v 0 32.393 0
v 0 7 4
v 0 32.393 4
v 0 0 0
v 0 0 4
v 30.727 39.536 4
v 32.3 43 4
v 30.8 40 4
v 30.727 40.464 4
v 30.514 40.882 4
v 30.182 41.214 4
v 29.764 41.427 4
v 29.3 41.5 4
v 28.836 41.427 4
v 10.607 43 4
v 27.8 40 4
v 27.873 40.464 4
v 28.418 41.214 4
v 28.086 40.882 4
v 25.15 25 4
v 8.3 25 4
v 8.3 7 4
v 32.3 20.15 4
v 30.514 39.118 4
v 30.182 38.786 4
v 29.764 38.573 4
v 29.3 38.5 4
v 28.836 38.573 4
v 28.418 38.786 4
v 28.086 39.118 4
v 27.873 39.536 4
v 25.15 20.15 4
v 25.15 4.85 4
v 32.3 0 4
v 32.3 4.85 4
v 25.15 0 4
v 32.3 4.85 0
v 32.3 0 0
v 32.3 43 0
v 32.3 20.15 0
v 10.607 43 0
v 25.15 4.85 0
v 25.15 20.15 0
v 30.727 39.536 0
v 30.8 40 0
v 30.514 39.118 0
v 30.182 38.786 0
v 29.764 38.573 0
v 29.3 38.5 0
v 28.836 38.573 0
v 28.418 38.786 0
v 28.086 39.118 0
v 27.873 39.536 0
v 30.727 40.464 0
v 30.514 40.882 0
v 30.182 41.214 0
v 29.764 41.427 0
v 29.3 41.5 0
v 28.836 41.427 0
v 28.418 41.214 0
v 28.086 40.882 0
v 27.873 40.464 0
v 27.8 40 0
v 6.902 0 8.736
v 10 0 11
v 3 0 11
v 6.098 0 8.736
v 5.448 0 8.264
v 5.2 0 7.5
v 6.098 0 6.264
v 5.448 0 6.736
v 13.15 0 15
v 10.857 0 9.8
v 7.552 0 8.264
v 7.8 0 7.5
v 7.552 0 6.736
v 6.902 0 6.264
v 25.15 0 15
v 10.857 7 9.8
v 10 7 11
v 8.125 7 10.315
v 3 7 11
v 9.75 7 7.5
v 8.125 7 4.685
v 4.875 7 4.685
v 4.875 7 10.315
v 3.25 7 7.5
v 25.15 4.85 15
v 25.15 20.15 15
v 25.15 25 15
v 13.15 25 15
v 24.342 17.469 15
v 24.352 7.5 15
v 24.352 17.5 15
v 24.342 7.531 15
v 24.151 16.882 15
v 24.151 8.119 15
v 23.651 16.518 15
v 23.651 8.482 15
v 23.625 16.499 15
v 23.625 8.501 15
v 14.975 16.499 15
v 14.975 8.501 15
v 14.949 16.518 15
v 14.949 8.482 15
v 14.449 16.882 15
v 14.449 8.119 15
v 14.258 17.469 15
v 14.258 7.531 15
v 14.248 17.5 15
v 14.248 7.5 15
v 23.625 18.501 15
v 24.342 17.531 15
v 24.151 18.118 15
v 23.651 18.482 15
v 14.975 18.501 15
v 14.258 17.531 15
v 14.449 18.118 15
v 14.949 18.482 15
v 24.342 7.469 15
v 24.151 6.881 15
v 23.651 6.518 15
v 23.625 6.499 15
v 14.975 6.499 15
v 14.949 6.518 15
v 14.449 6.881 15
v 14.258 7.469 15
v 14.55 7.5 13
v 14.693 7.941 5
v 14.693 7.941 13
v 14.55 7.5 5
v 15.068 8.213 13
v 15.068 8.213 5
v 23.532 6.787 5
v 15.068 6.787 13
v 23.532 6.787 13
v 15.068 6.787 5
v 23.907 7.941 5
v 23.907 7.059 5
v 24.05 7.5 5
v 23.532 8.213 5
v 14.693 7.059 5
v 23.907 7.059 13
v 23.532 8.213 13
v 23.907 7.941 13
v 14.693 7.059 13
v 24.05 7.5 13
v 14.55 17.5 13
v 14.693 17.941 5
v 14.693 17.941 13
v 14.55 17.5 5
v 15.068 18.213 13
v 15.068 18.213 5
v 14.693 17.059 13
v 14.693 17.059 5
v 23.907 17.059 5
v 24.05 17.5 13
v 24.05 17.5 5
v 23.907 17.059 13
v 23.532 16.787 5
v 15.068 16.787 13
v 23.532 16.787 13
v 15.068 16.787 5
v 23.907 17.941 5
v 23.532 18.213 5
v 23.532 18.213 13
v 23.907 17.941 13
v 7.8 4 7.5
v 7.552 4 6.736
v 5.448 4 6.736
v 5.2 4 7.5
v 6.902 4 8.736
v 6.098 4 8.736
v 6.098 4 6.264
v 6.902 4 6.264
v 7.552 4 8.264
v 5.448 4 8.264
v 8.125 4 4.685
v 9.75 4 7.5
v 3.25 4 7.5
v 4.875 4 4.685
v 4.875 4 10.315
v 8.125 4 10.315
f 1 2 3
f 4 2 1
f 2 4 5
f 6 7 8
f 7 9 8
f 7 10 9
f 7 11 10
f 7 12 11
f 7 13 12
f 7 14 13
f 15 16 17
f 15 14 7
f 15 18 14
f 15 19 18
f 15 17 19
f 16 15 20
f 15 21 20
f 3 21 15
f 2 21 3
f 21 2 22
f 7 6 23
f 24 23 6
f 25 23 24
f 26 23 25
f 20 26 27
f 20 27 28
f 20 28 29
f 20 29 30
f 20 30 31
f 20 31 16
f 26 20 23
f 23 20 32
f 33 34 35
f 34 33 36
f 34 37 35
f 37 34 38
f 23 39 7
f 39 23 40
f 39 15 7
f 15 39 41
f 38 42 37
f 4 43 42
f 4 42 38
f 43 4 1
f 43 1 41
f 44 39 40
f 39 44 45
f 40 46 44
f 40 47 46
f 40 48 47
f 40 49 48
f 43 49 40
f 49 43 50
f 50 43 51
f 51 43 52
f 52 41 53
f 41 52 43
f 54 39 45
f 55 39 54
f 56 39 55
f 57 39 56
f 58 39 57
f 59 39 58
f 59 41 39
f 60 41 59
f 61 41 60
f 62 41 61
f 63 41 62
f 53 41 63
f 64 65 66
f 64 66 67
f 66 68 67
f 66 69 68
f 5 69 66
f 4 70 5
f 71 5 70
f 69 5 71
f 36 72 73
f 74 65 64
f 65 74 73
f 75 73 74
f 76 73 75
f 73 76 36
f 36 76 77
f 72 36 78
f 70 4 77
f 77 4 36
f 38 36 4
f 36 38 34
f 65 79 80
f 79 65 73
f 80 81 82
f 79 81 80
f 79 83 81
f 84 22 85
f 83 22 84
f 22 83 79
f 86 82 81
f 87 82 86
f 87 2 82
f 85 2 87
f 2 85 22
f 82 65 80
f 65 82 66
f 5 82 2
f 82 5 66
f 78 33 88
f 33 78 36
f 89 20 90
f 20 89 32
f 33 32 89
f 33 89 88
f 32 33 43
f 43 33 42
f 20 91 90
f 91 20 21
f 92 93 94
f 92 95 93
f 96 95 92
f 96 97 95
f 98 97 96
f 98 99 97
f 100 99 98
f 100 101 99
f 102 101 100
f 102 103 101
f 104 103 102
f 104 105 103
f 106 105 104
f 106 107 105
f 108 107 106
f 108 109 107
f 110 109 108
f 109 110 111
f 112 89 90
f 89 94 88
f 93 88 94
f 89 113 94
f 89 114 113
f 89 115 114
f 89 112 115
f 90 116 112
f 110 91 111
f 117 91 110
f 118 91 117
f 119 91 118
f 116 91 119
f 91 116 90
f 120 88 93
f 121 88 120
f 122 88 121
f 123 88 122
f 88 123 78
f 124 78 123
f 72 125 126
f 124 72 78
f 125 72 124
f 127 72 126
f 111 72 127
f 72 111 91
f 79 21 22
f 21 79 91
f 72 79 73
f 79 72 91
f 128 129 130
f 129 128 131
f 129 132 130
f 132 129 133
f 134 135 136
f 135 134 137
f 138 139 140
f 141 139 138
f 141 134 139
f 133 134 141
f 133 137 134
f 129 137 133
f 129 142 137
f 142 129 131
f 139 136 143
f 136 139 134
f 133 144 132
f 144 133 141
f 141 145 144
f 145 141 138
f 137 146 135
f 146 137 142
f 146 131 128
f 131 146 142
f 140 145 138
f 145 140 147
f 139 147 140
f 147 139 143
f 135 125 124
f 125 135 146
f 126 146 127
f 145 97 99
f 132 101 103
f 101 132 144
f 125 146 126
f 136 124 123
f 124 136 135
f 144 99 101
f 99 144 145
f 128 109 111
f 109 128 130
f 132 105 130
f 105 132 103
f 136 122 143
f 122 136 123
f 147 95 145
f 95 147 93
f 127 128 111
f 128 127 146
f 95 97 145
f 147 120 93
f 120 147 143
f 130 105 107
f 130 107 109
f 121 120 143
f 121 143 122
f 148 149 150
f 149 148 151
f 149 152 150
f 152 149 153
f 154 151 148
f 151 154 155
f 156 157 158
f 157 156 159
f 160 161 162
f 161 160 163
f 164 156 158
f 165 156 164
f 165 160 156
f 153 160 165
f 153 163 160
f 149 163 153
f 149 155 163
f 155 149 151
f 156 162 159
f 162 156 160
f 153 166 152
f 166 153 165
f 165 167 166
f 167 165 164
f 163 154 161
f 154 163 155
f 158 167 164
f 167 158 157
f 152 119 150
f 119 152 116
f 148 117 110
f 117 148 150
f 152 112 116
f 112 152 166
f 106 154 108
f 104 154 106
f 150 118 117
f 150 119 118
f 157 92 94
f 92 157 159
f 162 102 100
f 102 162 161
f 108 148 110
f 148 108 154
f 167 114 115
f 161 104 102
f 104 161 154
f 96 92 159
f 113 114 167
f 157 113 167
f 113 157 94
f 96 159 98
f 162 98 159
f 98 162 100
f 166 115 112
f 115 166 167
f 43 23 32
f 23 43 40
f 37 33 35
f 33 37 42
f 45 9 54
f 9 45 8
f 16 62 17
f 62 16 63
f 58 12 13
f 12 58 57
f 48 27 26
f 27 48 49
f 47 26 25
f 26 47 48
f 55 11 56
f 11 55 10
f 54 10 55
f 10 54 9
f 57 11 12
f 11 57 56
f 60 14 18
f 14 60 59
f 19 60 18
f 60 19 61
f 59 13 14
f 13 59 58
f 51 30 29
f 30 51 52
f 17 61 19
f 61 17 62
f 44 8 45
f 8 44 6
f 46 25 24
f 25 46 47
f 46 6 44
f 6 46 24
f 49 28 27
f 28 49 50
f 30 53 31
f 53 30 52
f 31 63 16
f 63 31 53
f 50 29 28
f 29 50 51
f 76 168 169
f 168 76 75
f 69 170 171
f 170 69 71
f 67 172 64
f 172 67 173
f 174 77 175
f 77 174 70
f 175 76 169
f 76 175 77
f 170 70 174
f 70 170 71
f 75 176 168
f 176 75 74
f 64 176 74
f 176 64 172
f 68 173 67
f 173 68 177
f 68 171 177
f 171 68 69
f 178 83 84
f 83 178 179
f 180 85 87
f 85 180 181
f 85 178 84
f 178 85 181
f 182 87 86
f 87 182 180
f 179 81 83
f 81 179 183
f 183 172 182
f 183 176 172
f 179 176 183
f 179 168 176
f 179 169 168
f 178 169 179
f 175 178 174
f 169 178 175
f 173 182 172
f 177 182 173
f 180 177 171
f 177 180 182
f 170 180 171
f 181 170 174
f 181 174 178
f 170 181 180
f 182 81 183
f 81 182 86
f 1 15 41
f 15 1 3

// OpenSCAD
/**
 * XEndStopHolder.scad
 *
 * Created by Diego Viejo
 * 6 - Sept - 2019
 *
 *      b
 *  -----------
 *  |        *|
 *  |         | d       a = 15 + c + d
 *  |        --         b = b1 + b2
 * a|        |  15mm    * = 3mm. diam. hole
 *  |        --
 *  |         | c
 *  ----------- 
 *     b1    ,b2
 * 
 */

c = 5;
d = 23;
a = 15 + c + d;
b2 = 7;
b1 = 25.3;
b = b1 + b2;

endstopSeparation = 10;


module XEndStopHolder()
difference()
{
    union()
    {
        cube([b, a, 4]);
        
        //zendstop adjustment socket
        hull()
        {
            translate([3, 0, 0]) cube([7, 7, 4+7]);
            
            cube([15, 7, 4]);
        }
        
        //xend platform
        hull()
        {
            translate([b1-12.15, 0, 0]) cube([12, c+15+c, 15]);
            translate([b1-17, 0, 0]) cube([15, c+15+c, 4]);
        }
    }
    
    translate([b1-0.15, c-0.15, -1]) cube([60, 15 + 2*0.15, 15 + 1]);
    
    //attaching hole
    translate([b-3, a-3, -1]) cylinder(d=3, h=4+2, $fn=20);
    
    //x endstop
    for(i = [-1, 1])
    {        
        hull()
        {
            translate([b1-10, c + (15+i*endstopSeparation)/2, 5]) cylinder(d=1.5, h=10, $fn=10);
            translate([b1-2, c + (15+i*endstopSeparation)/2, 5]) cylinder(d=1.5, h=10, $fn=10);
        }
        hull()
        {
            translate([b1-10, c + (15+i*endstopSeparation)/2, 13]) cylinder(d1=1.5, d2=2.15, h=2.15, $fn=10);
            translate([b1-2, c + (15+i*endstopSeparation)/2, 13]) cylinder(d1=1.5, d2=2.15, h=2.15, $fn=10);
        }
    }
    
    
    //zendstop adjustment socket
    translate([3 + 7/2, -1, 4 + 7/2])  rotate([-90, 0, 0]) cylinder(d=2.6, h=20, $fn=10);
    translate([3 + 7/2, 7-3, 4 + 7/2])  rotate([-90, 0, 0]) cylinder(d=6.5, h=5, $fn=6);
    
    //fancy
    translate([0, a, 0]) rotate(45) cube(15, center=true);
}

XEndStopHolder();
//translate([b*2+5, 0, 0]) mirror([1, 0 ,0]) XEndStopHolder();
